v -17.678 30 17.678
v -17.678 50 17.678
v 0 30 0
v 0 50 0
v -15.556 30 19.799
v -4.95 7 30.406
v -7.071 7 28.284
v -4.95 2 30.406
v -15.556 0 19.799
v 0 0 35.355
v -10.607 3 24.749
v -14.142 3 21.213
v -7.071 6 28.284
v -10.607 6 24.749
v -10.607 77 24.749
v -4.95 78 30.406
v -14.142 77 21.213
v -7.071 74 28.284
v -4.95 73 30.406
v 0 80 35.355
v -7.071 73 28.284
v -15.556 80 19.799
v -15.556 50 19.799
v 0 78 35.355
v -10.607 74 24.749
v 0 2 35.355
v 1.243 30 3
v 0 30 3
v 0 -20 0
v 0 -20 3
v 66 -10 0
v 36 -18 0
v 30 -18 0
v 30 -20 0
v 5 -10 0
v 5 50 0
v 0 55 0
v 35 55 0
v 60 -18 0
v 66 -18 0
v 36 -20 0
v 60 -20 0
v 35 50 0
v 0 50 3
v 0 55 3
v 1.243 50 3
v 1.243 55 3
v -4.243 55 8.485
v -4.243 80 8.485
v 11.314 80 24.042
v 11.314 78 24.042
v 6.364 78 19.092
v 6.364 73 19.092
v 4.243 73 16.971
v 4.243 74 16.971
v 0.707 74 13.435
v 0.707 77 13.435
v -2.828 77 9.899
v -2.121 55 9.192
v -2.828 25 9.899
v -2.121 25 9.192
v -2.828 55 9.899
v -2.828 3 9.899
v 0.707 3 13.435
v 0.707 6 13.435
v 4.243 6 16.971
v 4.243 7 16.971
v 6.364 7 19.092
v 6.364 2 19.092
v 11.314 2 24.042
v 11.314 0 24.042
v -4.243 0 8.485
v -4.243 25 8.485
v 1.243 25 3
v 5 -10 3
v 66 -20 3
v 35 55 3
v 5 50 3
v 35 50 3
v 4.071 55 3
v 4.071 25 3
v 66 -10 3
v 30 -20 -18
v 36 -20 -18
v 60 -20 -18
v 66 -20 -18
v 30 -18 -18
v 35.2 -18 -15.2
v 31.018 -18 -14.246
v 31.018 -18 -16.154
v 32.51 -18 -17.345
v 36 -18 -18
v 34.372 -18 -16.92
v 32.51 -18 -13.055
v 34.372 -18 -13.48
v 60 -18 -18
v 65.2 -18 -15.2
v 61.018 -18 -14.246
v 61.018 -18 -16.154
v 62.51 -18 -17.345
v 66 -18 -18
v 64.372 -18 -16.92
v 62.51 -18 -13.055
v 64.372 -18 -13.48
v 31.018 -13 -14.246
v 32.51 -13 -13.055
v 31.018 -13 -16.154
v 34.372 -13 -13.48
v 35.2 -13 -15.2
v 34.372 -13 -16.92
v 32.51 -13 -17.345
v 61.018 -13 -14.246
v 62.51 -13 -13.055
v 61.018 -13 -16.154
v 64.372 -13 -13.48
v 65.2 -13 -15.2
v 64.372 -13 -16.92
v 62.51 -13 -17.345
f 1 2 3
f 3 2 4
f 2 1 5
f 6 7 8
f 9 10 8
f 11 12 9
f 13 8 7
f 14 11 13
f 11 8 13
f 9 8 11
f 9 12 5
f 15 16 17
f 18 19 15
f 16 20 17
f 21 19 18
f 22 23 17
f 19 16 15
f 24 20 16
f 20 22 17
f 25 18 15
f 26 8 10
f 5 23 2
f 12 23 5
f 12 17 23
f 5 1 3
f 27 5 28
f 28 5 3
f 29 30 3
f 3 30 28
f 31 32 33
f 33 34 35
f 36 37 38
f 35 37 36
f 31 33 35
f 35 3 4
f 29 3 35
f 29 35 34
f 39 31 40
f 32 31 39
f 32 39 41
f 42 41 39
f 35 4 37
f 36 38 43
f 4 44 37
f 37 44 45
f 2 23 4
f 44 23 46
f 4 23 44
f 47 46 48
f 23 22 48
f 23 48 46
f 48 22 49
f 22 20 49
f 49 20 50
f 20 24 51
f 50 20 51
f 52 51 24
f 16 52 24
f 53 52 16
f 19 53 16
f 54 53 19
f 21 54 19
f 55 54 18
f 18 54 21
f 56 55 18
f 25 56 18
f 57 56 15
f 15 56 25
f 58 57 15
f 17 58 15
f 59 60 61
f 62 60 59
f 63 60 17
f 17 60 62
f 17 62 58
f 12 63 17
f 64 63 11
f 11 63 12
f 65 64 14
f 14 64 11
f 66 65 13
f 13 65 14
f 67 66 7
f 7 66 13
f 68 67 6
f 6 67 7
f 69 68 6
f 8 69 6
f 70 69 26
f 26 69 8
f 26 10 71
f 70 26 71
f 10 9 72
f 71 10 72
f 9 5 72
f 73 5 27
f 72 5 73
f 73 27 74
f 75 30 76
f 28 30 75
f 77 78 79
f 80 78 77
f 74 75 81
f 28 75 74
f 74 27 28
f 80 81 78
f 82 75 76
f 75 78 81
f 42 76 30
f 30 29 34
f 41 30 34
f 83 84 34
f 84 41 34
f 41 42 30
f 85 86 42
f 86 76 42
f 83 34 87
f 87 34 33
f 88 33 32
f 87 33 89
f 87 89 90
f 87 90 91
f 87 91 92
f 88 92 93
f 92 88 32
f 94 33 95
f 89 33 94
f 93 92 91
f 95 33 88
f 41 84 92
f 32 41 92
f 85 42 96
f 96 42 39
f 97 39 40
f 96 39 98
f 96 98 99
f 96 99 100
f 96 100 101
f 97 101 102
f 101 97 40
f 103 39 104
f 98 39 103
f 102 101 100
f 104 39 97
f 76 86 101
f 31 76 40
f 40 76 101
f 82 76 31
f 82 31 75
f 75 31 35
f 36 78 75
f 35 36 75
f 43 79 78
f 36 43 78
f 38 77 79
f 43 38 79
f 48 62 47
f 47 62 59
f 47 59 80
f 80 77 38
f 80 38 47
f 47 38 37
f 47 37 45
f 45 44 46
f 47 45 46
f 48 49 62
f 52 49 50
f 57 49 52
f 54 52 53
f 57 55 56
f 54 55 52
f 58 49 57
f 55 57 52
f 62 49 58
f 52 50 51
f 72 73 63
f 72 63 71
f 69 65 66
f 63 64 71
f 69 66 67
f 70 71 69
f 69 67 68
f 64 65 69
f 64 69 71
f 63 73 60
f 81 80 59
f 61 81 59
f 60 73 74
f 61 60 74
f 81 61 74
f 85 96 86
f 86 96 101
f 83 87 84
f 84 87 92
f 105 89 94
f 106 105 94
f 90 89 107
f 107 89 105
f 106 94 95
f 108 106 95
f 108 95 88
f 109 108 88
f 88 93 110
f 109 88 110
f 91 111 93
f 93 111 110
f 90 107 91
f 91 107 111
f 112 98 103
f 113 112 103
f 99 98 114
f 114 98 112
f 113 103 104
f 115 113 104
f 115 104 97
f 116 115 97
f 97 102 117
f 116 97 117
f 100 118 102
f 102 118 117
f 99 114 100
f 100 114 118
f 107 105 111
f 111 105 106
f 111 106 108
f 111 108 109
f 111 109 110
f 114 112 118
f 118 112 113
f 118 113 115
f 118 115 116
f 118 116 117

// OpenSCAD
// (c) 2014 juewei@fabfolk.com
// GPLv2.0 or ask
//
// Attaching an 80mm fan to the rear of your makibox

module bracket()
{
  difference()
  {
    union()
    {
      translate([-2,0,0]) cube([22,80,16]);
      translate([-5,30,-9])cube([5,20,25]);
      translate([-2,25,-11])cube([2,30,27]);
    }
    translate([0,6,-1]) cube([10,68,18]);
    translate([0,3,-1]) cube([5,74,18]);
    translate([0,7,-1]) cube([22,66,18]);
    translate([13,2,-1])cube([10,76,18]);
  }
}

module hook()
{
   union()
   {
     translate([0,0,-13-5]) cube([6,2,1+13+5]);
     translate([3,7,-13-2.2]) rotate(90, [1,0,0]) cylinder(r=2.2, h=6);
   }
}

union()
{
  rotate(-45, [0,1,0]) translate([5,0,9]) bracket();
  difference()
  {
    translate([0,-20,0])  cube([66,75,3]);
    translate([5,-10,-1]) cube([66,60,5]);
    translate([35,-10,-1])cube([66,75,5]);
  }
  translate([30,-20,0]) hook();
  translate([60,-20,0]) hook();
}  
